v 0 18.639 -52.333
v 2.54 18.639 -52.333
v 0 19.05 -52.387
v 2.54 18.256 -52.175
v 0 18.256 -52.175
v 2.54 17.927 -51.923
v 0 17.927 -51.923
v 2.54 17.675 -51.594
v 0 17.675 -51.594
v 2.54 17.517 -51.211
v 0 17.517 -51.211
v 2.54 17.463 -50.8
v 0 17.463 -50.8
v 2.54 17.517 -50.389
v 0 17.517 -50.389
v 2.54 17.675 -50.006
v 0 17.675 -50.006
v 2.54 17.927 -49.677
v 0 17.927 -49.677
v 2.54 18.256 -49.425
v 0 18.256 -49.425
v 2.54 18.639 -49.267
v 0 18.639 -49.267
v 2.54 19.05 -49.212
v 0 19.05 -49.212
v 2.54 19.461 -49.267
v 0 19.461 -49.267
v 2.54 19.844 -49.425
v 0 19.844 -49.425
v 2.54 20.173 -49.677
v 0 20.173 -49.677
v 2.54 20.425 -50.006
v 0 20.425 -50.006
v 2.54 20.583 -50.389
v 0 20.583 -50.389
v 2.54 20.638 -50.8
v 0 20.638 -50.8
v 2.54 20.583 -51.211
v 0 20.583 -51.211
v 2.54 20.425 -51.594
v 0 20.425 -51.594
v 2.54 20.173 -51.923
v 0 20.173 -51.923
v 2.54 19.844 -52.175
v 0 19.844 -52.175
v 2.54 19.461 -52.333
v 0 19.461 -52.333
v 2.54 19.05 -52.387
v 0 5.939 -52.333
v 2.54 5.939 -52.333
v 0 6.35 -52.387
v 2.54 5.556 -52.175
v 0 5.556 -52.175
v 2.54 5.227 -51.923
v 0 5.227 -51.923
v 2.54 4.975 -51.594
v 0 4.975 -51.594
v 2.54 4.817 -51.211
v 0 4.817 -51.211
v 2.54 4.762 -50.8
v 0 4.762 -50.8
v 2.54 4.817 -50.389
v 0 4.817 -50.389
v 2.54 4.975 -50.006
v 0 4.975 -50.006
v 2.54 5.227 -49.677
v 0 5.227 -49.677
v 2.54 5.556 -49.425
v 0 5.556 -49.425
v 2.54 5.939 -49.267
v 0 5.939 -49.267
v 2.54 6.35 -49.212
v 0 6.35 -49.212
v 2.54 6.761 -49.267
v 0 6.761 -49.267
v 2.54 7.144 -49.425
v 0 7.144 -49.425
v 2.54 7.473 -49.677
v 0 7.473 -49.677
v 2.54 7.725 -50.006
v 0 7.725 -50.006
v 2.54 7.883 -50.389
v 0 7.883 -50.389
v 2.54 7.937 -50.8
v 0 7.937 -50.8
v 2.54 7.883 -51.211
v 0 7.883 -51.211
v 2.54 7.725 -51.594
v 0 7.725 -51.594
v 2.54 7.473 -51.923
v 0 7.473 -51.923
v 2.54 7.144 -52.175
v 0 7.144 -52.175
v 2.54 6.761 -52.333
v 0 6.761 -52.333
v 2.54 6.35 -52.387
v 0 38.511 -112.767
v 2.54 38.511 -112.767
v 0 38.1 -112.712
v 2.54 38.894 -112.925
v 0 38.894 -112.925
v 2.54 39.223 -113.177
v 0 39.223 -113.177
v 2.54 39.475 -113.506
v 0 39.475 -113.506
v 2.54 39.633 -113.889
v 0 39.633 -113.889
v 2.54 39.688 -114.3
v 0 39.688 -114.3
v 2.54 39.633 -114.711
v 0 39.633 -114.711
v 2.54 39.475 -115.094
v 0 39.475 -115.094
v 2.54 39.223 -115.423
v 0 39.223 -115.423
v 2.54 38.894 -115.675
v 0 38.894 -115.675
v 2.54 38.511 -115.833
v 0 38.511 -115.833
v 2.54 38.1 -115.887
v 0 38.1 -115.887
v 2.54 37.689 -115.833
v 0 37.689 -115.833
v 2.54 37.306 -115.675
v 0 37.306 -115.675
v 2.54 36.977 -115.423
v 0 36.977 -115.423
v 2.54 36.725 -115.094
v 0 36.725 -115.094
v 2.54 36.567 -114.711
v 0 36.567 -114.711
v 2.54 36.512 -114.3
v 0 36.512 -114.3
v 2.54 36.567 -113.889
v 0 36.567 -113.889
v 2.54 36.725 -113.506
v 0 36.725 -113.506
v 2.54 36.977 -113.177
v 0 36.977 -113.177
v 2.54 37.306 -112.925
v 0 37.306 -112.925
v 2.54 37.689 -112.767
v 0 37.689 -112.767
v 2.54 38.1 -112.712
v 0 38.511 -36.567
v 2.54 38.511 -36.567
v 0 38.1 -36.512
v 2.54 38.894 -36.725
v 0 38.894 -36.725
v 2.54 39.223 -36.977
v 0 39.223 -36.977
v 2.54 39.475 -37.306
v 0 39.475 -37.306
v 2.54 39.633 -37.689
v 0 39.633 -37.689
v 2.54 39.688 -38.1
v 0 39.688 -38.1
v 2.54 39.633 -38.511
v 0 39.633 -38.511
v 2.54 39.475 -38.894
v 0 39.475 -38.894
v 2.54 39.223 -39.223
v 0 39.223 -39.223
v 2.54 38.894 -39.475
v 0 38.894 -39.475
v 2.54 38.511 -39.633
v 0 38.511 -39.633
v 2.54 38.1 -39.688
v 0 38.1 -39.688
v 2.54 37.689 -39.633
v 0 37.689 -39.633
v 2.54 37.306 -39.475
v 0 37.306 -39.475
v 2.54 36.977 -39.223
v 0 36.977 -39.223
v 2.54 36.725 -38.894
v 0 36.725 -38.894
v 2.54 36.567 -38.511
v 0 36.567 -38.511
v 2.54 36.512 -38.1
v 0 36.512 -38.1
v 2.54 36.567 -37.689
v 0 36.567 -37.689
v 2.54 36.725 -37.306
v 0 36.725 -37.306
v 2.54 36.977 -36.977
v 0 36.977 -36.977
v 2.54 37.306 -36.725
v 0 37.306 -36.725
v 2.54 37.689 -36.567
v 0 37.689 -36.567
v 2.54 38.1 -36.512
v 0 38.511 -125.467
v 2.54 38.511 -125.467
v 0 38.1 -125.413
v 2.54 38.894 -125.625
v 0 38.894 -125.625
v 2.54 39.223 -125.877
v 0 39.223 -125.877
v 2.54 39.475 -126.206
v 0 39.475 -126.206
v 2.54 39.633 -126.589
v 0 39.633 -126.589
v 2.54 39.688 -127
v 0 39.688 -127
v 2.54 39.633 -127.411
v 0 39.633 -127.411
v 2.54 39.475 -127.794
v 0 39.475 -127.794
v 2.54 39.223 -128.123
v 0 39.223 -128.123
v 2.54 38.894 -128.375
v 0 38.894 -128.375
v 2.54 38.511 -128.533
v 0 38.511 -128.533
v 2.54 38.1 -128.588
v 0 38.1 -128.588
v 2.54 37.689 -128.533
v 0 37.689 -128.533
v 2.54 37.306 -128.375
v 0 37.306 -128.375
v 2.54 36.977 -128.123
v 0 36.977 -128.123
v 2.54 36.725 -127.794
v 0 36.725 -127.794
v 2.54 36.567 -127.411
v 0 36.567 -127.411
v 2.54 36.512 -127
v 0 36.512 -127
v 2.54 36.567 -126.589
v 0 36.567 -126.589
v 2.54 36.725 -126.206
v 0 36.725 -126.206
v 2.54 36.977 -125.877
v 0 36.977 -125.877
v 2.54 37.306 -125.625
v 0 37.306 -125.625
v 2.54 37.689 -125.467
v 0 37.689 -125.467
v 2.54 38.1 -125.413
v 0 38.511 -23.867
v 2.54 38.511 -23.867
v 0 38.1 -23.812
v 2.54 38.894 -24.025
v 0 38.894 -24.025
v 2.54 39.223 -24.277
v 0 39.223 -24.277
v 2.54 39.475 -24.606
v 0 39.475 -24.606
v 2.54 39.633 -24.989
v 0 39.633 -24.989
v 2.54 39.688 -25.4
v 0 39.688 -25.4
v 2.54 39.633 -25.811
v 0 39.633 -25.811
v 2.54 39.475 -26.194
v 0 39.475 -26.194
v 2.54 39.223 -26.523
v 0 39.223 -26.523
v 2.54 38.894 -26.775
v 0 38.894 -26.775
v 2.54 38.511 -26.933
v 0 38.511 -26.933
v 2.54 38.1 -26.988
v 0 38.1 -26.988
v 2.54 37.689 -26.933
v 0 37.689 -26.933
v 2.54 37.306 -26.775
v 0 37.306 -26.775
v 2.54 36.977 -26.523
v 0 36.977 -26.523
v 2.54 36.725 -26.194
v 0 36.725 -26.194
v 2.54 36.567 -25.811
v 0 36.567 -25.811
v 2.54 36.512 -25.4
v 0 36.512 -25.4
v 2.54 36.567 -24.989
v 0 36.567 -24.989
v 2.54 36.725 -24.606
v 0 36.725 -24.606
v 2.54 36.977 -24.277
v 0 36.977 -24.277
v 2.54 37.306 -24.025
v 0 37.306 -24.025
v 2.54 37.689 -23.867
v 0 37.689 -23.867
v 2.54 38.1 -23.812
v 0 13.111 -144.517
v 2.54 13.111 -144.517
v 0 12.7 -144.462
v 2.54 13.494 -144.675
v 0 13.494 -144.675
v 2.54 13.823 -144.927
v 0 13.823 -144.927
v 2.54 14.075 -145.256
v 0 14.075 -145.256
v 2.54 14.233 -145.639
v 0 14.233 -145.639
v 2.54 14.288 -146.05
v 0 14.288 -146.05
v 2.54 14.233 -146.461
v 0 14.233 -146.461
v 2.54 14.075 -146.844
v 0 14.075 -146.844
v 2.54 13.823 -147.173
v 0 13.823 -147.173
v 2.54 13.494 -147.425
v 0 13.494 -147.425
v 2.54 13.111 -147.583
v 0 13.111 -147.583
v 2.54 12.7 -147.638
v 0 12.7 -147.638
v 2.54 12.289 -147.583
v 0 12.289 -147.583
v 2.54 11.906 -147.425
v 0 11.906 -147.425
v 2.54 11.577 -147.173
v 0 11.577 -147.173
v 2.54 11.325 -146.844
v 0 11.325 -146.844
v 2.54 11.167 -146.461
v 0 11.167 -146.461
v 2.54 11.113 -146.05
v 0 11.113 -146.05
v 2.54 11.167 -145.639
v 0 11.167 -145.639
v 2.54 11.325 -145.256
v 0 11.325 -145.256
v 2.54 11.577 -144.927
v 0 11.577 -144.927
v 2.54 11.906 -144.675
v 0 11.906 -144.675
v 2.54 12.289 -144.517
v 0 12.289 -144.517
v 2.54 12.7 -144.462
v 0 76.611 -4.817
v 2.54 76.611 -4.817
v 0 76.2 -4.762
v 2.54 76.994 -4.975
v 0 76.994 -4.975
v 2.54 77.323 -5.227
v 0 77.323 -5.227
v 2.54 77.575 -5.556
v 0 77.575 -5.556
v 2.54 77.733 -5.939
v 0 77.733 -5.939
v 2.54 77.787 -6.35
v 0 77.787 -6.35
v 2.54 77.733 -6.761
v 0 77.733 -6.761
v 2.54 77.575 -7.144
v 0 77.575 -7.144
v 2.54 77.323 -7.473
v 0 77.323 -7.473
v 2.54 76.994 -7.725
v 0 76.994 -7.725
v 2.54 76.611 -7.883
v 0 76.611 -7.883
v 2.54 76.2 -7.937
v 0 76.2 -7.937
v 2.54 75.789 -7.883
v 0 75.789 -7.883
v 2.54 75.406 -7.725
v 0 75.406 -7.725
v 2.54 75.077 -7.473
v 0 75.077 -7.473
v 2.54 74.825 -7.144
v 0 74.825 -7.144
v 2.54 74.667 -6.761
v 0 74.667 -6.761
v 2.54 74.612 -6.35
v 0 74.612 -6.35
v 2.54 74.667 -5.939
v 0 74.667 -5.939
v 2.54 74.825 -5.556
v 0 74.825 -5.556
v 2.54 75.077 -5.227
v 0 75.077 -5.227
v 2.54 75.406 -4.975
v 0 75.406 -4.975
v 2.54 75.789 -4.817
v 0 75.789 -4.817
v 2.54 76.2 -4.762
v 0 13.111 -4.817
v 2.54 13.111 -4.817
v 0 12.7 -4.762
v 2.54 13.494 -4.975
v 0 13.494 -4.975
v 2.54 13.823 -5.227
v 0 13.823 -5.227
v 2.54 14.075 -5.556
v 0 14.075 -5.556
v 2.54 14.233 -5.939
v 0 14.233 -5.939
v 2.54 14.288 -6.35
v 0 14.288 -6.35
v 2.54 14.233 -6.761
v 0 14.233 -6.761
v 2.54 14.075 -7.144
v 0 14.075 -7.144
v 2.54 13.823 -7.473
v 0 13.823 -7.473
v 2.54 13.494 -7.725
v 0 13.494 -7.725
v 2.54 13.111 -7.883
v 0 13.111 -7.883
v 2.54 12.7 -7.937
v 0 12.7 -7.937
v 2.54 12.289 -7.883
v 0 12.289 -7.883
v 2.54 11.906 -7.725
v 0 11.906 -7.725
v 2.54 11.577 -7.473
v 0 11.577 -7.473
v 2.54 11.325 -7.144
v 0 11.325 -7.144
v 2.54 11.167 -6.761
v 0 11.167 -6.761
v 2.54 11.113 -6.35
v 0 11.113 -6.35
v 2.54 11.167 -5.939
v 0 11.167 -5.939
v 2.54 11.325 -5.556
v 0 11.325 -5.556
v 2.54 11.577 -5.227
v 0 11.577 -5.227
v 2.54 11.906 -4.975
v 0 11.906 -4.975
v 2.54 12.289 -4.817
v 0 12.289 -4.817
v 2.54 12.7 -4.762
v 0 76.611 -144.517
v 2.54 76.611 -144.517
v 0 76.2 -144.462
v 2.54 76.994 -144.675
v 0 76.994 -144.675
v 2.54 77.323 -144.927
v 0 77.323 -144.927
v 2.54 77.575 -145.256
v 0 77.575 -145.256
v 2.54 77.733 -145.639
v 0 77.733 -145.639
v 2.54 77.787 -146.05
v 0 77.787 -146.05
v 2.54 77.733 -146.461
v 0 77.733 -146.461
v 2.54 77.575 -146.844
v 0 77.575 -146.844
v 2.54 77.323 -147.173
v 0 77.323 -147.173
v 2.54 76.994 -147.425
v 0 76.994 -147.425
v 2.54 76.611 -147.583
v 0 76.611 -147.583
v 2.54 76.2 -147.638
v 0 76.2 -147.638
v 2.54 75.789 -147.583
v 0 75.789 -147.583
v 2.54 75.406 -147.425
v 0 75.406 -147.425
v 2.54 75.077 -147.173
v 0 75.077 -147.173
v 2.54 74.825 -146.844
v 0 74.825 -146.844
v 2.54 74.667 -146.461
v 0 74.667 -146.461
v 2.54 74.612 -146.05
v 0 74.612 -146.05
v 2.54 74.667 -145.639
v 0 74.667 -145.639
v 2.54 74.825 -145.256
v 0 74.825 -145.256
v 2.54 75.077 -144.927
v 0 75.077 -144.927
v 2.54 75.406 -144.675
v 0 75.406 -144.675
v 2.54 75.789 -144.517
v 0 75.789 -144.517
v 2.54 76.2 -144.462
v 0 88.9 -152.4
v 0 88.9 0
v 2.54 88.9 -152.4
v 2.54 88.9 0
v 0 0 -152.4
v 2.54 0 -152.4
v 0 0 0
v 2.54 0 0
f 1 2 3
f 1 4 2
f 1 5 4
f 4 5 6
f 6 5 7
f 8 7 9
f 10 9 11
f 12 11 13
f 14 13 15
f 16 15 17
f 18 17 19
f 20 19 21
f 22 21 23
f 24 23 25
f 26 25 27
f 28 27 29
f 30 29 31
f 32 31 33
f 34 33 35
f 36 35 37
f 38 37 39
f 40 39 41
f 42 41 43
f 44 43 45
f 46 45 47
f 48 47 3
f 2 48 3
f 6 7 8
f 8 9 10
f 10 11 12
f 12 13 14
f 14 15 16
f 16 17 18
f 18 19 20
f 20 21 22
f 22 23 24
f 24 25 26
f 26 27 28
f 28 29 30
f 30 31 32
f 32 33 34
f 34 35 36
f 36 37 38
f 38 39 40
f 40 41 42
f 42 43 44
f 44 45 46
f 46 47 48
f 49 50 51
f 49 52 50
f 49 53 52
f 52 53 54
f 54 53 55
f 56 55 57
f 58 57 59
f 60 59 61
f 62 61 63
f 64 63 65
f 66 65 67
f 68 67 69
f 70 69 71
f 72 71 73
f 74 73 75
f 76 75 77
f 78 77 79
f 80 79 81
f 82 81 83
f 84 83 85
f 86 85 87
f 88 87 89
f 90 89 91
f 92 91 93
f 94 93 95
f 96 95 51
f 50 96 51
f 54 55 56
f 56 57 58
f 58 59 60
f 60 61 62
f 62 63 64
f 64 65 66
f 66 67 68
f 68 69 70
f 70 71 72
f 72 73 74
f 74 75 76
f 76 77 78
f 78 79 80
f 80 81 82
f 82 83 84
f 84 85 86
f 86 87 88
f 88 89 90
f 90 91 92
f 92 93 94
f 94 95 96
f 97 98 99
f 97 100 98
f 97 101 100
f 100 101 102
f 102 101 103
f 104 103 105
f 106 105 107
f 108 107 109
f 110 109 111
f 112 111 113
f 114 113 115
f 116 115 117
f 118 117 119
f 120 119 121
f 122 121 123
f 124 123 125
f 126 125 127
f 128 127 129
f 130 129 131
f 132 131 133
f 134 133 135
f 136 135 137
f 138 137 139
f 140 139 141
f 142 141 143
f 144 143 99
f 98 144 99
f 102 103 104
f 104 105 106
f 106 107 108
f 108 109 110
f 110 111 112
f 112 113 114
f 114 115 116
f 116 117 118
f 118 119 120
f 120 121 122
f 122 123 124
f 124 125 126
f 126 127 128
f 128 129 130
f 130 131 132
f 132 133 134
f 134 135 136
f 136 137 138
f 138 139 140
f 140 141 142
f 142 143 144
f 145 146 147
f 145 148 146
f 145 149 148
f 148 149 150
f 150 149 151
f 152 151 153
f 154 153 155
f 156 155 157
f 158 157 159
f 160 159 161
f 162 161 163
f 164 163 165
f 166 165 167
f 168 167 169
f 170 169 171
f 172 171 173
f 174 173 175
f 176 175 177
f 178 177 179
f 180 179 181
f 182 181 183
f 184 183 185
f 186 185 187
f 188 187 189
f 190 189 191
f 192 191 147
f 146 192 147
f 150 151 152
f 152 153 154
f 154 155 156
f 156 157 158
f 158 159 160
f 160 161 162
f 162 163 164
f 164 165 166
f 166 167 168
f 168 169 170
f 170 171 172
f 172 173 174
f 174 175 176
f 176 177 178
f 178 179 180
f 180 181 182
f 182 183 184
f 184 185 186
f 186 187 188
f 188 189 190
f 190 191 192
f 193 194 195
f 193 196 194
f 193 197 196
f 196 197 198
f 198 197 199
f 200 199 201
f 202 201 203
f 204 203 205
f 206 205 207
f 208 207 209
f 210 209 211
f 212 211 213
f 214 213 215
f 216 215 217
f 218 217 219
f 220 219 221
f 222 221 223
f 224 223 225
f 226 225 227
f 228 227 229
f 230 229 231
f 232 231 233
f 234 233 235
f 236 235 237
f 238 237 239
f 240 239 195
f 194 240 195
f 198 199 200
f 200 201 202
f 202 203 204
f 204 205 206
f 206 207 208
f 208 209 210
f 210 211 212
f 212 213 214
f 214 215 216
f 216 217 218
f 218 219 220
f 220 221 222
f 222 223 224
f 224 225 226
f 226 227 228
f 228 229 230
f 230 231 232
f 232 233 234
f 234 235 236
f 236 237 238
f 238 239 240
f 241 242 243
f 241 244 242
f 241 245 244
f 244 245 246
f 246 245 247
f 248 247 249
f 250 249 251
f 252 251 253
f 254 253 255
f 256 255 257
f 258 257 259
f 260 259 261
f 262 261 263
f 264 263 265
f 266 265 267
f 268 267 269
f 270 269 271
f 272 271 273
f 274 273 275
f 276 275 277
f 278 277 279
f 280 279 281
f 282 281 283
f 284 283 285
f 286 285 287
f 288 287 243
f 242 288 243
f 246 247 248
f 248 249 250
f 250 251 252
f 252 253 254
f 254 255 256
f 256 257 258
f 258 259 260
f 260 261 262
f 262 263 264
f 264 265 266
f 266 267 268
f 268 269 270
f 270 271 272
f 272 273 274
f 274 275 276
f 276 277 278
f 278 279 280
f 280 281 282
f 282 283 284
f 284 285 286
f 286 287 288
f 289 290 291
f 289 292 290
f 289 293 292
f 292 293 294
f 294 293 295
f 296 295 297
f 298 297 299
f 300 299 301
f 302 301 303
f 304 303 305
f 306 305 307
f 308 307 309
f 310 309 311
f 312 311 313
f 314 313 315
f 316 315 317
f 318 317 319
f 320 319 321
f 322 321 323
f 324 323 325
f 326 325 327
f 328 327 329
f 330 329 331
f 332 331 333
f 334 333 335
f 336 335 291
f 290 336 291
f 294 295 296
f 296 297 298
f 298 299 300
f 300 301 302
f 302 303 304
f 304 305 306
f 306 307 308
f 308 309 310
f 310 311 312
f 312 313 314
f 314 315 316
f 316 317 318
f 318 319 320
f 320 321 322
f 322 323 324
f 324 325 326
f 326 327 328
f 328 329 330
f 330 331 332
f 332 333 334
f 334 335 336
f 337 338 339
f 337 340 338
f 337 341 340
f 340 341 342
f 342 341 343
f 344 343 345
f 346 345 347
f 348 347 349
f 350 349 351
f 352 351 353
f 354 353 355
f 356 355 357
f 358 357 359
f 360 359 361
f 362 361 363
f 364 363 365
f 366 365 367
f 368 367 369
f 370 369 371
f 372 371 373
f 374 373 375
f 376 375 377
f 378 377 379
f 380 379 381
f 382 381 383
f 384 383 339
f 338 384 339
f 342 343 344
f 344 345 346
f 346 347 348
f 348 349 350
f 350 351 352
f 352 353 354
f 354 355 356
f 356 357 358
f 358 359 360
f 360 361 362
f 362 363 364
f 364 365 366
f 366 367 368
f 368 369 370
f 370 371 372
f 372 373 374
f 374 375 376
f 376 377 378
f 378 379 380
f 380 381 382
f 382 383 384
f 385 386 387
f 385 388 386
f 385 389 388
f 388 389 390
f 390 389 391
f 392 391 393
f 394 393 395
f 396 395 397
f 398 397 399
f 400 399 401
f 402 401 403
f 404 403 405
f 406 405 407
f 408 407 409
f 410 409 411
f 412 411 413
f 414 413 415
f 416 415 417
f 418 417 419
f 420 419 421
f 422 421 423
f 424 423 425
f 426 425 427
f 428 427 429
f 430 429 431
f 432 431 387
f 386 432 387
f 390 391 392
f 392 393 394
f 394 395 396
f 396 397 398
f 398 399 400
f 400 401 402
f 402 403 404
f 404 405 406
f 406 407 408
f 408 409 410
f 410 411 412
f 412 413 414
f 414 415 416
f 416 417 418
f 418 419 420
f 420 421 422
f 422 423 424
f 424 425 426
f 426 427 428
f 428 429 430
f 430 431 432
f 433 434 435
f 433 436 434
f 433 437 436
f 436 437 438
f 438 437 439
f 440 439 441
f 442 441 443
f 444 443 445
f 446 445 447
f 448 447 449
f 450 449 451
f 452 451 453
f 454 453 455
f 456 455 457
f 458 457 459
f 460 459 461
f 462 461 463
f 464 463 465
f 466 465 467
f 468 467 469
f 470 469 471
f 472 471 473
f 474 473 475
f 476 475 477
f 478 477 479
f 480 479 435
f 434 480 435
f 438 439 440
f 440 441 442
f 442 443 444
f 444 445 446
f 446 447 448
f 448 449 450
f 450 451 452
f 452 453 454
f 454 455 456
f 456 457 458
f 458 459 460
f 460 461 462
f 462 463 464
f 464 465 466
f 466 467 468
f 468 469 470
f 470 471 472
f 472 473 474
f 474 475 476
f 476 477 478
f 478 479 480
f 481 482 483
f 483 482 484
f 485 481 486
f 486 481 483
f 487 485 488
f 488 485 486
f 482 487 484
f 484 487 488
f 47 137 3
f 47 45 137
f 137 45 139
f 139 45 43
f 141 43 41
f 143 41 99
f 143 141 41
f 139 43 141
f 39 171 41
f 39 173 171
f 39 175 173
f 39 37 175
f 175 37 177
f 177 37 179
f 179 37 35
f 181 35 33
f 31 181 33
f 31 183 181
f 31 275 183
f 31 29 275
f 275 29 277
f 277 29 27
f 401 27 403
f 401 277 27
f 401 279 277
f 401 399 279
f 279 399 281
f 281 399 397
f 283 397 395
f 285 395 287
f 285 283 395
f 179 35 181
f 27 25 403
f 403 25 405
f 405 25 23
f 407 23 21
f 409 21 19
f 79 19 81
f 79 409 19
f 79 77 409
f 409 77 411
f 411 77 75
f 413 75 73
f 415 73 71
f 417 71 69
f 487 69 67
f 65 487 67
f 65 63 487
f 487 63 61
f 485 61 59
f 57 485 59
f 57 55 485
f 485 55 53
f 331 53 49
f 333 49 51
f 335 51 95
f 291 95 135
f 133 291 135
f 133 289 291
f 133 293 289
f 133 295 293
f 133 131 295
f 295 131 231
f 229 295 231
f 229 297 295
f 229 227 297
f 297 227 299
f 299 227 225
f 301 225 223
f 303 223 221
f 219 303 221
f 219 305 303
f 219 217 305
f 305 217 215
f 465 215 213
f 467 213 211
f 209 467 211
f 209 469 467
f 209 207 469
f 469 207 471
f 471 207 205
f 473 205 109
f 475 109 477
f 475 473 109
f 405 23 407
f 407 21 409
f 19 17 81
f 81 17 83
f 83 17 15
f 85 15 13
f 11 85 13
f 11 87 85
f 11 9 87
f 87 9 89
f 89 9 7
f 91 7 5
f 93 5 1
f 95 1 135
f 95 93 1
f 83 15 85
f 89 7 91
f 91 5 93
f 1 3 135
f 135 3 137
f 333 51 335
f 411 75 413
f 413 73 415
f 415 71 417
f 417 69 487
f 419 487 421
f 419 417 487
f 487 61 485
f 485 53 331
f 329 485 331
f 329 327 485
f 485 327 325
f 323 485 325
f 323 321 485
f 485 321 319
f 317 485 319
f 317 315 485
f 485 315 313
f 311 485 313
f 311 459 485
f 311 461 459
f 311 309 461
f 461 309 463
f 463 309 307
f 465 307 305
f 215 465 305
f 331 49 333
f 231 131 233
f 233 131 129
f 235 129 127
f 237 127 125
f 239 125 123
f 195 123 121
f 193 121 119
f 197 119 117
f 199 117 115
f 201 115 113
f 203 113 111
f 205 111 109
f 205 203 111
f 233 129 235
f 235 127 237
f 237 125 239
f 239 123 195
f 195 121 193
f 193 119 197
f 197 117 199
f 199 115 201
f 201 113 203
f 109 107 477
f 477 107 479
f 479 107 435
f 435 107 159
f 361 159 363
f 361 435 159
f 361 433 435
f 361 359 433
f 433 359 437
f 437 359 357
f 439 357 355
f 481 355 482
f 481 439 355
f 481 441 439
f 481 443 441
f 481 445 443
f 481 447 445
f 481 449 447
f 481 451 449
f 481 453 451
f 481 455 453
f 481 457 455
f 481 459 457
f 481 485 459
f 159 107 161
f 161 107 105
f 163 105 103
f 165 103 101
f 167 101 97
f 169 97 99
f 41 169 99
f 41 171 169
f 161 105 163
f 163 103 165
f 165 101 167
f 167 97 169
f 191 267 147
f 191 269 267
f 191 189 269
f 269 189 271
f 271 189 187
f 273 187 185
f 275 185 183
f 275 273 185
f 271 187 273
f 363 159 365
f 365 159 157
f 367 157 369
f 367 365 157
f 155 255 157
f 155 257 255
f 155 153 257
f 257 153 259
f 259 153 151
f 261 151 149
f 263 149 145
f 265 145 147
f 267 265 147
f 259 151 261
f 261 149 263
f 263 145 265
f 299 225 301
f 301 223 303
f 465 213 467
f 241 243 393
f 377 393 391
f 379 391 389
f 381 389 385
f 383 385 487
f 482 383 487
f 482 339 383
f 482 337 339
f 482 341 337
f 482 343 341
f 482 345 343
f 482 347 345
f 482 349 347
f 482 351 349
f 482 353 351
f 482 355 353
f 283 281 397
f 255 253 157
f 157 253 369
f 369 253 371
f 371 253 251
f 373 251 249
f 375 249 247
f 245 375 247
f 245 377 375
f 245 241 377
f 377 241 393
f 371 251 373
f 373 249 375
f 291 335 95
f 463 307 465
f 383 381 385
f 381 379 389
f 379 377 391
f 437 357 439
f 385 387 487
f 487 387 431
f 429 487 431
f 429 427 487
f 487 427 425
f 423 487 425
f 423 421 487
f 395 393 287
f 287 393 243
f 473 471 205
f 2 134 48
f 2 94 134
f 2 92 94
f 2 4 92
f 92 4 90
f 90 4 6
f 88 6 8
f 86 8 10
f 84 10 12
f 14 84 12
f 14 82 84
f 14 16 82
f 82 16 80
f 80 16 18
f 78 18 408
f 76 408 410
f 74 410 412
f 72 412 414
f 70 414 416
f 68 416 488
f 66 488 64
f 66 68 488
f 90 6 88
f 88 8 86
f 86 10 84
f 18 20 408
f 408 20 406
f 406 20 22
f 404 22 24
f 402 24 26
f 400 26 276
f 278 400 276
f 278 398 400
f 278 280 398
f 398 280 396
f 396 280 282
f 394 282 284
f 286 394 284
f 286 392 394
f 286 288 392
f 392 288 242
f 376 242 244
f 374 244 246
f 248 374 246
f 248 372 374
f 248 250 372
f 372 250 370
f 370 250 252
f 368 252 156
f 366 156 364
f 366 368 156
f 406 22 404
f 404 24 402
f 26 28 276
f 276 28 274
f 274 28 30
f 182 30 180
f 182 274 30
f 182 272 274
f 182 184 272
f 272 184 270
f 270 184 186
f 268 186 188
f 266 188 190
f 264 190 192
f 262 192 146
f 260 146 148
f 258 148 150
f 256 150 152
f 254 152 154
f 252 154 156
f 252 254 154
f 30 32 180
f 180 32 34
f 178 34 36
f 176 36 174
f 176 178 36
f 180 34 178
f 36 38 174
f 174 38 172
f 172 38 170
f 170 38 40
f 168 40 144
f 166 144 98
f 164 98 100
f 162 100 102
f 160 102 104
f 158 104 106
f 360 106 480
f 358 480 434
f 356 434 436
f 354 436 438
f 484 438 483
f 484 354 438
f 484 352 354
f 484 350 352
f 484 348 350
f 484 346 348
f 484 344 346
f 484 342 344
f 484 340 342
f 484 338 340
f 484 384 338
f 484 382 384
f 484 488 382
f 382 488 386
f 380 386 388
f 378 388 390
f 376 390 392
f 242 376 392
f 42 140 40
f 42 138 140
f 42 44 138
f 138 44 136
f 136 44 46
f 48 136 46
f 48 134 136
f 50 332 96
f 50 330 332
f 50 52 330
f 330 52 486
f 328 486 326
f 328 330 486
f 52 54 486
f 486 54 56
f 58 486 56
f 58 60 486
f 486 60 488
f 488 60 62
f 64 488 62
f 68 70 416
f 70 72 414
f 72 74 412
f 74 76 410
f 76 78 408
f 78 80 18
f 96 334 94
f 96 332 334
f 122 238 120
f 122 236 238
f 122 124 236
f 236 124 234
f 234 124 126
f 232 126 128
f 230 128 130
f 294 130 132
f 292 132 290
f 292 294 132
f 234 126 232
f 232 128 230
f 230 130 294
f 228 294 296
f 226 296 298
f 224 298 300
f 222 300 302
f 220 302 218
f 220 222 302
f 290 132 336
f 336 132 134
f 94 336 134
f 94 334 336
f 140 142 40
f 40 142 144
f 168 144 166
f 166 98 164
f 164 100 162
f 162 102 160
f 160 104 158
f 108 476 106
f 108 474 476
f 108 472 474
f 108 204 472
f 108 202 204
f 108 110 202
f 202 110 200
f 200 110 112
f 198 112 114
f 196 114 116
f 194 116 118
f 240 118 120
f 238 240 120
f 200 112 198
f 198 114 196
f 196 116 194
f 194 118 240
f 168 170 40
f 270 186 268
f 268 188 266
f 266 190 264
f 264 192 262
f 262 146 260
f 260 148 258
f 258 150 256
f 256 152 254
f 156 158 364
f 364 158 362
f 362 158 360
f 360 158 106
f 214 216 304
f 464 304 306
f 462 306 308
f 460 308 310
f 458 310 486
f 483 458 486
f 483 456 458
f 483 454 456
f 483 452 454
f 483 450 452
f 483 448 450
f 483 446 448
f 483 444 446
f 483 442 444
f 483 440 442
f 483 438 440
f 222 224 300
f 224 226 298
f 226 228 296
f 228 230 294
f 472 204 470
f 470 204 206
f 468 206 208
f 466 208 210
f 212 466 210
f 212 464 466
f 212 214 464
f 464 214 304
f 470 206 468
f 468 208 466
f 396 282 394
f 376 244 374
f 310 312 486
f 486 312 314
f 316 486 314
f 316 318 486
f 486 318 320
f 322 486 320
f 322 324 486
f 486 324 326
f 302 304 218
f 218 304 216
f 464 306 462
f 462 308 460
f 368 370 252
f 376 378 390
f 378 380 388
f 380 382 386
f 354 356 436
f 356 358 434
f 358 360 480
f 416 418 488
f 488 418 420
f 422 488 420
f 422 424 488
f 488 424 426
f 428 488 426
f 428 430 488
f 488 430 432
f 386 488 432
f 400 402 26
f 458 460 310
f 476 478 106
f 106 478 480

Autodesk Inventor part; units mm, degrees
ref_plane "YZ Plane" through (0, 0, 0) normal (1, 0, 0) x (0, 1, 0)
ref_plane "XZ Plane" through (0, 0, 0) normal (0, 1, 0) x (-1, 0, 0)
ref_plane "XY Plane" through (0, 0, 0) normal (0, 0, 1) x (1, 0, 0)
sketch "Sketch1" plane through (0, 0, 0) normal (1, 0, 0) x (0, 1, 0)
  line L0 (0, 0) -> (88.9, 0)
  line L1 (88.9, 0) -> (88.9, -152.4)
  line L2 (88.9, -152.4) -> (0, -152.4)
  line L3 (0, -152.4) -> (0, 0)
  dimension "d0" = 88.9
  dimension "d1" = 152.4
extrude "Extrusion1" add sketch "Sketch1" along normal blind 2.54
sketch "Sketch2" plane through (2.54, 0, 0) normal (1, 0, 0) x (0, 0, -1)
  line L0 (0, 88.9) -> (0, 0) projected
  line L1 (0, 0) -> (152.4, 0) projected
  line L2 (152.4, 0) -> (152.4, 88.9) projected
  line L3 (152.4, 88.9) -> (0, 88.9) projected
  line L4 (6.35, 82.55) -> (6.35, 6.35) construction
  line L5 (6.35, 6.35) -> (146.05, 6.35) construction
  line L6 (146.05, 6.35) -> (146.05, 82.55) construction
  line L7 (146.05, 82.55) -> (6.35, 82.55) construction
  point P0 (6.35, 76.2)
  point P1 (6.35, 12.7)
  point P2 (146.05, 12.7)
  point P3 (146.05, 76.2)
  dimension "d4" = 6.35
  dimension "d5" = 12.7
  dimension "d6" = 12.7
  dimension "d7" = 12.7
  dimension "d8" = 12.7
hole "Hole1" at (2.54, 76.2, -6.35) at (2.54, 12.7, -6.35) at (2.54, 12.7, -146.05) at (2.54, 76.2, -146.05) direction (-1, 0, 0) diameter 3.175 depth 25.4 tip angle 118
sketch "Sketch3" plane through (2.54, 0, 0) normal (1, 0, 0) x (0, 0, -1)
  circle A0 centre (146.05, 12.7) radius 1.5875 projected
  circle A1 centre (6.35, 76.2) radius 1.5875 projected
  circle A2 centre (6.35, 12.7) radius 1.5875 projected
  circle A3 centre (146.05, 76.2) radius 1.5875 projected
  line L0 (0, 88.9) -> (0, 0) construction
  line L1 (0, 0) -> (152.4, 0) construction
  line L2 (152.4, 0) -> (152.4, 88.9) construction
  line L3 (152.4, 88.9) -> (0, 88.9) construction
  line L4 (-29.9282, 38.1) -> (171.8832, 38.1) construction
  point P0 (38.1, 38.1)
  point P1 (127, 38.1)
  point P2 (114.3, 38.1)
  point P3 (25.4, 38.1)
  dimension "d16" = 38.1
  dimension "d17" = 25.4
  dimension "d18" = 12.7
  dimension "d19" = 12.7
  dimension "d20" = 25.4
hole "Hole2" at (2.54, 38.1, -38.1) at (2.54, 38.1, -127) at (2.54, 38.1, -114.3) at (2.54, 38.1, -25.4) direction (-1, 0, 0) diameter 3.175 depth 25.4 tip angle 118
sketch "Sketch4" plane through (2.54, 0, 0) normal (1, 0, 0) x (0, 0, -1)
  line L0 (76.2, 87.9176) -> (76.2, -34.5253) construction
  circle A0 centre (38.1, 38.1) radius 1.5875 construction
  circle A1 centre (114.3, 38.1) radius 1.5875 construction
  line L1 (-38.8298, 38.1) -> (178.5898, 38.1) construction
  line L2 (-38.8298, 31.75) -> (180.6434, 31.75) construction
  line L3 (50.8, 85.0864) -> (50.8, -24.0085) construction
  line L4 (211.4025, 27.94) -> (-276.8587, 27.94) construction
  line L5 (-64.569, 19.05) -> (271.1941, 19.05) construction
  line L6 (-69.2198, 6.35) -> (225.3941, 6.35) construction
  circle A2 centre (50.8, 19.05) radius 1.5875
  circle A3 centre (50.8, 6.35) radius 1.5875
  point P0 (0, 0)
  point P1 (50.8, 31.75)
  dimension "d28" = 76.2
  dimension "d29" = 38.1
  dimension "d30" = 6.35
  dimension "d31" = 25.4
  dimension "d32" = 3.81
  dimension "d33" = 12.7
  dimension "d34" = 12.7
  dimension "d35" = 3.175
  dimension "d36" = 3.175
extrude "Extrusion2" cut sketch "Sketch4" against normal blind 25.4
properties part number "000201"
